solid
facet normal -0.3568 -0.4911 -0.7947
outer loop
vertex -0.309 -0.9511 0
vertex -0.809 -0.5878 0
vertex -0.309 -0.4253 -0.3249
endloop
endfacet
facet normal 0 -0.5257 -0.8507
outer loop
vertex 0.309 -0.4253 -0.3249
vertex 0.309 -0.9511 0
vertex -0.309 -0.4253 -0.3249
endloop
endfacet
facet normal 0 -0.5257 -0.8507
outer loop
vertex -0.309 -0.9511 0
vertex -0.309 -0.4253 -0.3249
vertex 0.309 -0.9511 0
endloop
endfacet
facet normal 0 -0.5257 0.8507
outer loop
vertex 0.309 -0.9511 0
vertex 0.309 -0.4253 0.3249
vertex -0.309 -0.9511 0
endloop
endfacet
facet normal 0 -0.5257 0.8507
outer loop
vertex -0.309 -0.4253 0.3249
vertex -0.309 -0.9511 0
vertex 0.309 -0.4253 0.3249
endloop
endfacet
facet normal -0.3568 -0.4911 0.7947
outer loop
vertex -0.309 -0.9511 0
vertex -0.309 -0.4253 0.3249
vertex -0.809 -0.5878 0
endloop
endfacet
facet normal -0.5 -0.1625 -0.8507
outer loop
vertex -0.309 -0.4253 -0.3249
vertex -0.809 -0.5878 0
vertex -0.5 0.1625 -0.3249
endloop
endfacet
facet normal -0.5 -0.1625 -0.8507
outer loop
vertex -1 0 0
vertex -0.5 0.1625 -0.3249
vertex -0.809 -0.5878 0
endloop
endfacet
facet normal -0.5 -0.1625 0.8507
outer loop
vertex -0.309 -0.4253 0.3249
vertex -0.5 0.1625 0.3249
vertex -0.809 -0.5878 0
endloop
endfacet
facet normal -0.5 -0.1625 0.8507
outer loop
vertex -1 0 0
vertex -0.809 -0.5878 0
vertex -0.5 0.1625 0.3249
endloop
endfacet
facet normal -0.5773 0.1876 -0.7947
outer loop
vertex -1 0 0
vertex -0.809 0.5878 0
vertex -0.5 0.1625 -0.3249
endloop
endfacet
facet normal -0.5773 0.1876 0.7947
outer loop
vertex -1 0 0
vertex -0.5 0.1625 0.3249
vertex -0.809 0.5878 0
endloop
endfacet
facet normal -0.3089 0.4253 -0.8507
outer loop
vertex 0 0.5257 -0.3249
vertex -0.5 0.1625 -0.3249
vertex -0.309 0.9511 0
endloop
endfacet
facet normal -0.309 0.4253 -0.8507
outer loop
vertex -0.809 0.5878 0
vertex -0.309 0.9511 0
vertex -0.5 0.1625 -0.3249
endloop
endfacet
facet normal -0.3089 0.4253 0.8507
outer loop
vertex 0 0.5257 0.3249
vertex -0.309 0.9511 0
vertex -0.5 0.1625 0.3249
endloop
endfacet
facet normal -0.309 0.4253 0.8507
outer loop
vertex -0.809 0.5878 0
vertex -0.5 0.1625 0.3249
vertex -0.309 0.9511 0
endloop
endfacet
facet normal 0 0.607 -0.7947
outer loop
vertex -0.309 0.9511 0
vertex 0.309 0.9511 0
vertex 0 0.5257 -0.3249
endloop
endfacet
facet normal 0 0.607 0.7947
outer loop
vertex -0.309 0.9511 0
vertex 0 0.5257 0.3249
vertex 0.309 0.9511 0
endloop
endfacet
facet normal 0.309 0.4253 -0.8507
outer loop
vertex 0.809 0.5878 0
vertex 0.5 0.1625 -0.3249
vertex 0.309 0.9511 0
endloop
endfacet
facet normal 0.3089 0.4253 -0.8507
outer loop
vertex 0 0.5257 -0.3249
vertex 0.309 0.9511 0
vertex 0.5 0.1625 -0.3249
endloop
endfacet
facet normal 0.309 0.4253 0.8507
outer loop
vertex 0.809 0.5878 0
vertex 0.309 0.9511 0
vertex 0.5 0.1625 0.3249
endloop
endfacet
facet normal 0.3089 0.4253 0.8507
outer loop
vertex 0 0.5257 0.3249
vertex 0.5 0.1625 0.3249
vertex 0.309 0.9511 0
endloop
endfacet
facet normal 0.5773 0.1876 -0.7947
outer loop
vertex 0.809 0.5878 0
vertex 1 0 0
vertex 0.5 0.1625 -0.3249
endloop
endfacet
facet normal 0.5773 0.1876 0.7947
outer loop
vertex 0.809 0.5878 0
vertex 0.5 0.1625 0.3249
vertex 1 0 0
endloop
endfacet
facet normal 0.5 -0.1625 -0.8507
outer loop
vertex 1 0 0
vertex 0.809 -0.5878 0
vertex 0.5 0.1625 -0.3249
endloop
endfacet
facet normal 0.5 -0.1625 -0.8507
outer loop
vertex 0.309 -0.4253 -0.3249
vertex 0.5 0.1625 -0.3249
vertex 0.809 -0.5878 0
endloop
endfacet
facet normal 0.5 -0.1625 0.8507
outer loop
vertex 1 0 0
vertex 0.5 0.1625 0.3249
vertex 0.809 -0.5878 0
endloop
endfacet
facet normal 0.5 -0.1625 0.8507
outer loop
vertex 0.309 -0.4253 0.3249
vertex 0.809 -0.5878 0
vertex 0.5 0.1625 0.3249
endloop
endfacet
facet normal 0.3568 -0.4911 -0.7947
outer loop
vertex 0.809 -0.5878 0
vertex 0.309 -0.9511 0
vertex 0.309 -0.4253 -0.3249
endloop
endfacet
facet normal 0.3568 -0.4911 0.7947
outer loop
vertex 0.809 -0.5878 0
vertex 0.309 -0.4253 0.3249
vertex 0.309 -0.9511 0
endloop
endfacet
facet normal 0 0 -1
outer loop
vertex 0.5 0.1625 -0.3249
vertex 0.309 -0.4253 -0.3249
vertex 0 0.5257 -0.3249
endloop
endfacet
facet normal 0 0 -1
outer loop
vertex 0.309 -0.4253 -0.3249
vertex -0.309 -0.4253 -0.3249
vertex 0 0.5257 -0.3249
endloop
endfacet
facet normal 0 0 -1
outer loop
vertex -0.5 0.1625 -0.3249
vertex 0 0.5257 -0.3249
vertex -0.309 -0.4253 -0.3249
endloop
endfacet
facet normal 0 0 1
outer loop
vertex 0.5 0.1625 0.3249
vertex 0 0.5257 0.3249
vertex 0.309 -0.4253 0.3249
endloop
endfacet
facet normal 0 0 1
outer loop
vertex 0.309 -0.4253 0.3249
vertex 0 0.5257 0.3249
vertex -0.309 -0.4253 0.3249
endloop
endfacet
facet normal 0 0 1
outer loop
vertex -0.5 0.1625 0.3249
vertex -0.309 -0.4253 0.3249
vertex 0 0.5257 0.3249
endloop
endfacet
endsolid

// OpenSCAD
polyhedron( points = [[-0.309016994397808, -0.951056516287726, 6.07247674336796e-16], [-0.809016994445262, -0.587785252195691, 6.07247674336796e-16], [-0.999999999961188, 4.8241539253782e-11, 6.07247674336796e-16], [-0.809016994286931, 0.587785252240727, 6.07247674336796e-16], [-0.30901699431242, 0.951056516142576, 6.07247674336796e-16], [0.309016994357583, 0.951056516087077, 6.07247674336796e-16], [0.809016994266863, 0.587785252095439, 6.07247674336796e-16], [0.999999999835563, -1.31346779956815e-10, 6.07247674336796e-16], [0.809016994214089, -0.587785252340984, 6.07247674336796e-16], [0.309016994272202, -0.951056516287726, 6.07247674336796e-16], [-0.30901699437006, -0.425325403527314, -0.324919695723773], [-0.499999999919294, 0.162459848069713, -0.324919696063987], [4.23838292020157e-13, 0.525731111908473, -0.324919696063987], [0.499999999832763, 0.16245984794945, -0.324919696063988], [0.309016994093341, -0.425325403655858, -0.324919695644328], [-0.309016993820607, -0.425325403926519, 0.324919695723772], [0.309016994244447, -0.425325404158109, 0.324919696063986], [0.499999999822856, 0.162459847979913, 0.324919696063986], [-3.16255961105732e-11, 0.525731111908467, 0.324919696063987], [-0.499999999394937, 0.162459848081196, 0.324919695644327]], faces = [[0, 1, 10], [0, 10, 14, 9], [0, 9, 16, 15], [0, 15, 1], [1, 2, 11, 10], [1, 15, 19, 2], [2, 3, 11], [2, 19, 3], [3, 4, 12, 11], [3, 19, 18, 4], [4, 5, 12], [4, 18, 5], [5, 6, 13, 12], [5, 18, 17, 6], [6, 7, 13], [6, 17, 7], [7, 8, 14, 13], [7, 17, 16, 8], [8, 9, 14], [8, 16, 9], [10, 11, 12, 13, 14], [15, 16, 17, 18, 19]]);
